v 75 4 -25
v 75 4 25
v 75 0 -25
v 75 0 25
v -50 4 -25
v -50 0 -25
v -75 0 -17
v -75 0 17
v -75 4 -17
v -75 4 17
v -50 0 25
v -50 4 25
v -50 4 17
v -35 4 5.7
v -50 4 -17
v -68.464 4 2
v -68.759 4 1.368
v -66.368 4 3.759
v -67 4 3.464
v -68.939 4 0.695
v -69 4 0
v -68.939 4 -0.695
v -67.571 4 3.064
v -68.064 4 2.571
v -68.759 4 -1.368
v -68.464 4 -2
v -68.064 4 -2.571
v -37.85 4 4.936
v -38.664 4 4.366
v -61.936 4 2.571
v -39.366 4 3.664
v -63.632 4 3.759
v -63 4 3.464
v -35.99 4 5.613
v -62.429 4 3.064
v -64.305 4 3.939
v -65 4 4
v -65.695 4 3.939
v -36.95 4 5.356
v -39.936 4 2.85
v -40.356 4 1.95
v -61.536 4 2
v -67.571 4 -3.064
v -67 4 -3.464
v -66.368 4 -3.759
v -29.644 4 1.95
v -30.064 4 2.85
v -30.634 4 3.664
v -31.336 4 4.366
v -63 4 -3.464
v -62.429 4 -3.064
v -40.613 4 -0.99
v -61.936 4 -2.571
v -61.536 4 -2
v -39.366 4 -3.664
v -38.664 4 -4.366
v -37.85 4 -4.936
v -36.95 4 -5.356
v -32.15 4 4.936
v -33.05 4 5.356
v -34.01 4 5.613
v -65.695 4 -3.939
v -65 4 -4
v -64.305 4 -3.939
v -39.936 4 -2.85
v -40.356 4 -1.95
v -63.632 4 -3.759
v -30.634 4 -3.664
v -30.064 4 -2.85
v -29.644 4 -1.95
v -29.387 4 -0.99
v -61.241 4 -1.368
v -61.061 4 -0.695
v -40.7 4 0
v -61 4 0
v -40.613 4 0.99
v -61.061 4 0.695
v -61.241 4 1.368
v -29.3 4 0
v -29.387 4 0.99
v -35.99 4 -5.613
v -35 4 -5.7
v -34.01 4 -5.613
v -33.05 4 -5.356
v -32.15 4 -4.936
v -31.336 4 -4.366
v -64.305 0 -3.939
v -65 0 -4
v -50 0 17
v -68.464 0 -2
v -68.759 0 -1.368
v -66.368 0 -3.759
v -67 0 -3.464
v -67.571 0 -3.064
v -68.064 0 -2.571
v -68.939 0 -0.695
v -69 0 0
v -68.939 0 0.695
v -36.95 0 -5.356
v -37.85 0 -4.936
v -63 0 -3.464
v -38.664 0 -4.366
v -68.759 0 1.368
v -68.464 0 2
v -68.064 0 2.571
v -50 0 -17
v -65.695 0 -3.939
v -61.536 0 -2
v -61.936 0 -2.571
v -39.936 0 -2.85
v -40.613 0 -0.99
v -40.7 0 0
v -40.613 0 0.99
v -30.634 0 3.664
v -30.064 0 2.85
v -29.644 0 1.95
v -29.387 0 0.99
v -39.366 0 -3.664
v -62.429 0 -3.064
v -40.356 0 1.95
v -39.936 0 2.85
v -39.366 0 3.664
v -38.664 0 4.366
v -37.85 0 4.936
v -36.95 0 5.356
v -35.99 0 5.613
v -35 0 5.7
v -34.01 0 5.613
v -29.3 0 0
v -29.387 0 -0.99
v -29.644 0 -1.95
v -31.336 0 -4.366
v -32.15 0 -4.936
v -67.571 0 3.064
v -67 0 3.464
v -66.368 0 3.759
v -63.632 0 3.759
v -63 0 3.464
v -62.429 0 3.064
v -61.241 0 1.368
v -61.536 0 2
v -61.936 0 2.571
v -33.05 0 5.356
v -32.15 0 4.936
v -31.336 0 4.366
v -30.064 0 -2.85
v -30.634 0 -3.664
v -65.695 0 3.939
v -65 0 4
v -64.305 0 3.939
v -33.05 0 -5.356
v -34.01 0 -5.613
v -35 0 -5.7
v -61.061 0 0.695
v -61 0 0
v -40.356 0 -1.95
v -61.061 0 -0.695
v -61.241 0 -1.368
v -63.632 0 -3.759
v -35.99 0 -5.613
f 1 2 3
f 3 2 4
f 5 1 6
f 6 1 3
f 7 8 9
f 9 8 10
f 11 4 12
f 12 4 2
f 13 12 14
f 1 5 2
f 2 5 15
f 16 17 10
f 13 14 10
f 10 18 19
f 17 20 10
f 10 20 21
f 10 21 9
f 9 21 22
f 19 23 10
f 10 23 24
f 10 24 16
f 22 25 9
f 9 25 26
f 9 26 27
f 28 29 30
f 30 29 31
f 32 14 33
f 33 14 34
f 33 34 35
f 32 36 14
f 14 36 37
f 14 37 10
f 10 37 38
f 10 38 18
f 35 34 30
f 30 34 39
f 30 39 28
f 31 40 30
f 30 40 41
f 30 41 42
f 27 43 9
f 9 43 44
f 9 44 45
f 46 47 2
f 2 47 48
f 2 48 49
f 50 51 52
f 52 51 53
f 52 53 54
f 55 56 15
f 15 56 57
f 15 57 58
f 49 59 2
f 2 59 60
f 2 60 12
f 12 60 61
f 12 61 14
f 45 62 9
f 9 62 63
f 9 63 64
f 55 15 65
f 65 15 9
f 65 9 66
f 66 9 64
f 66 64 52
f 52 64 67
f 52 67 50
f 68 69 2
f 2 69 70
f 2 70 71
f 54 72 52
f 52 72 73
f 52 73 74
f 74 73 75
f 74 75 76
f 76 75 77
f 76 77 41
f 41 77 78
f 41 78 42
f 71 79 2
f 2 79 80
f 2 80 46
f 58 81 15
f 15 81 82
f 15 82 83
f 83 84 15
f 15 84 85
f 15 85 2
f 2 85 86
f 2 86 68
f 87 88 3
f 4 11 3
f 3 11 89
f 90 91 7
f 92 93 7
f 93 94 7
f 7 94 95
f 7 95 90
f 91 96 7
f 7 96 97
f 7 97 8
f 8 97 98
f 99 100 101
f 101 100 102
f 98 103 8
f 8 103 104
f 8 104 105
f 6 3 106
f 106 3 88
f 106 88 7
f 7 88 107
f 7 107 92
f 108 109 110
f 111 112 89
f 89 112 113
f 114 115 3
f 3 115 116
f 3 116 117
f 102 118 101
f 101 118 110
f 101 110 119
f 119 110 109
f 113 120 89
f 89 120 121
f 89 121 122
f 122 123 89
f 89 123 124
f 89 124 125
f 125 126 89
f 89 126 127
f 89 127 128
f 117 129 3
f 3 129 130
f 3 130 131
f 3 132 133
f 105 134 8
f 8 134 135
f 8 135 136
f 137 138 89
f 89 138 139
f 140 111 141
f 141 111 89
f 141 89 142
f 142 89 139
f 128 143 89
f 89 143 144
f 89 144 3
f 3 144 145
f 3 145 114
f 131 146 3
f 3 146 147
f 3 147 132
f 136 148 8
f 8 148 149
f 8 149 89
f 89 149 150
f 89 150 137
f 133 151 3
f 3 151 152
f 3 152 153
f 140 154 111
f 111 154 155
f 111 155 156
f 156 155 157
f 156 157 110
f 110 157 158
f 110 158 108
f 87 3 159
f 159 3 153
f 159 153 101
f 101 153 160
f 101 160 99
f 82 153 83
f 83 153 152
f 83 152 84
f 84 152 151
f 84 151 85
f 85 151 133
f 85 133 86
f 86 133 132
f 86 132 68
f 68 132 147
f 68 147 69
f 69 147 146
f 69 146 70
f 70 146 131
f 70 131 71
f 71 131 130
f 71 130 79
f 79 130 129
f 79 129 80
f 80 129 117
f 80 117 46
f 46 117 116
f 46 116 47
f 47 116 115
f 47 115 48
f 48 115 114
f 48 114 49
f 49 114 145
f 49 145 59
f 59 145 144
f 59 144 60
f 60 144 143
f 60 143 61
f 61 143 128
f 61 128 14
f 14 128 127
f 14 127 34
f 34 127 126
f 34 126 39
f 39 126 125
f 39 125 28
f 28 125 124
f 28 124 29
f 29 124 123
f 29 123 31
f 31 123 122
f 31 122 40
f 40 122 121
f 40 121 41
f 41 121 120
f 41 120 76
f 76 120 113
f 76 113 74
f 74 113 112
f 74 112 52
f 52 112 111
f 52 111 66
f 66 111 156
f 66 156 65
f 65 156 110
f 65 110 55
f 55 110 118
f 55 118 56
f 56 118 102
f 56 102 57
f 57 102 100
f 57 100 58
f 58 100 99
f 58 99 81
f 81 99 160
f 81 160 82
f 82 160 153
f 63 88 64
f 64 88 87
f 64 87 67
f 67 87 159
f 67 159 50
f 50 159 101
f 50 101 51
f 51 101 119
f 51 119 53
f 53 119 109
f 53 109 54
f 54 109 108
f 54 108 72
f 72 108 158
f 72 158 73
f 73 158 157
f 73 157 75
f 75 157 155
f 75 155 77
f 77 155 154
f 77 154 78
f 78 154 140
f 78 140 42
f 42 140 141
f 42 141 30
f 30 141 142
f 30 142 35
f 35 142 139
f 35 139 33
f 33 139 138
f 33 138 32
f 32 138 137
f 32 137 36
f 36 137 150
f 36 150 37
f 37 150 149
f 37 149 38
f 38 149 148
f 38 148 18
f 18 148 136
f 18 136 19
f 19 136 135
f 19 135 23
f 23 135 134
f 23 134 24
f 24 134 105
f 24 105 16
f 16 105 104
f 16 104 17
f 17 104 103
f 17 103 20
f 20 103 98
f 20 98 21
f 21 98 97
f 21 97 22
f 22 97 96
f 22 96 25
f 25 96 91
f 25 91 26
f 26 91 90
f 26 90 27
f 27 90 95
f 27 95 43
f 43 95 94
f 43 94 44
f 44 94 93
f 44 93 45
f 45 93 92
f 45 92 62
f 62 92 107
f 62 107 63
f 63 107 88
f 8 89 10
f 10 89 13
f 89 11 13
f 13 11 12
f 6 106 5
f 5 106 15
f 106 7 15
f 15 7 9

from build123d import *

# Parameters (mm, degrees)
SKETCH1_W           = 150
SKETCH1_H           = 50
BOSS_EXTRUDE1_DEPTH = 4
SKETCH2_R           = 4
SKETCH2_R_2         = 5.7
CUT_EXTRUDE1_DEPTH  = 4
SKETCH3_W           = 25
SKETCH3_H           = 8
CUT_EXTRUDE2_DEPTH  = 4


with BuildPart() as part:
    # Sketch1 → Boss-Extrude1 (new body)
    with BuildSketch(Plane(origin=(0, 0, 0), x_dir=(1, 0, 0), z_dir=(0, 1, 0))):
        Rectangle(SKETCH1_W, SKETCH1_H)
    extrude(amount=BOSS_EXTRUDE1_DEPTH)

    # Sketch2 → Cut-Extrude1 (cut)
    with BuildSketch(Plane.XZ):
        with Locations(Location((-65, 0, 0), (0, 0, 270))):
            Circle(SKETCH2_R)
        with Locations(Location((-35, 0, 0), (0, 0, 270))):
            Circle(SKETCH2_R_2)
    extrude(amount=-CUT_EXTRUDE1_DEPTH, mode=Mode.SUBTRACT)

    # Sketch3 → Cut-Extrude2 (cut)
    with BuildSketch(Plane(origin=(0, 4, 0), x_dir=(1, 0, 0), z_dir=(0, 1, 0))):
        with Locations((-62.5, 21)):
            Rectangle(SKETCH3_W, SKETCH3_H)
        with Locations((-62.5, -21)):
            Rectangle(SKETCH3_W, SKETCH3_H)
    extrude(amount=-CUT_EXTRUDE2_DEPTH, mode=Mode.SUBTRACT)


solid = part.part
